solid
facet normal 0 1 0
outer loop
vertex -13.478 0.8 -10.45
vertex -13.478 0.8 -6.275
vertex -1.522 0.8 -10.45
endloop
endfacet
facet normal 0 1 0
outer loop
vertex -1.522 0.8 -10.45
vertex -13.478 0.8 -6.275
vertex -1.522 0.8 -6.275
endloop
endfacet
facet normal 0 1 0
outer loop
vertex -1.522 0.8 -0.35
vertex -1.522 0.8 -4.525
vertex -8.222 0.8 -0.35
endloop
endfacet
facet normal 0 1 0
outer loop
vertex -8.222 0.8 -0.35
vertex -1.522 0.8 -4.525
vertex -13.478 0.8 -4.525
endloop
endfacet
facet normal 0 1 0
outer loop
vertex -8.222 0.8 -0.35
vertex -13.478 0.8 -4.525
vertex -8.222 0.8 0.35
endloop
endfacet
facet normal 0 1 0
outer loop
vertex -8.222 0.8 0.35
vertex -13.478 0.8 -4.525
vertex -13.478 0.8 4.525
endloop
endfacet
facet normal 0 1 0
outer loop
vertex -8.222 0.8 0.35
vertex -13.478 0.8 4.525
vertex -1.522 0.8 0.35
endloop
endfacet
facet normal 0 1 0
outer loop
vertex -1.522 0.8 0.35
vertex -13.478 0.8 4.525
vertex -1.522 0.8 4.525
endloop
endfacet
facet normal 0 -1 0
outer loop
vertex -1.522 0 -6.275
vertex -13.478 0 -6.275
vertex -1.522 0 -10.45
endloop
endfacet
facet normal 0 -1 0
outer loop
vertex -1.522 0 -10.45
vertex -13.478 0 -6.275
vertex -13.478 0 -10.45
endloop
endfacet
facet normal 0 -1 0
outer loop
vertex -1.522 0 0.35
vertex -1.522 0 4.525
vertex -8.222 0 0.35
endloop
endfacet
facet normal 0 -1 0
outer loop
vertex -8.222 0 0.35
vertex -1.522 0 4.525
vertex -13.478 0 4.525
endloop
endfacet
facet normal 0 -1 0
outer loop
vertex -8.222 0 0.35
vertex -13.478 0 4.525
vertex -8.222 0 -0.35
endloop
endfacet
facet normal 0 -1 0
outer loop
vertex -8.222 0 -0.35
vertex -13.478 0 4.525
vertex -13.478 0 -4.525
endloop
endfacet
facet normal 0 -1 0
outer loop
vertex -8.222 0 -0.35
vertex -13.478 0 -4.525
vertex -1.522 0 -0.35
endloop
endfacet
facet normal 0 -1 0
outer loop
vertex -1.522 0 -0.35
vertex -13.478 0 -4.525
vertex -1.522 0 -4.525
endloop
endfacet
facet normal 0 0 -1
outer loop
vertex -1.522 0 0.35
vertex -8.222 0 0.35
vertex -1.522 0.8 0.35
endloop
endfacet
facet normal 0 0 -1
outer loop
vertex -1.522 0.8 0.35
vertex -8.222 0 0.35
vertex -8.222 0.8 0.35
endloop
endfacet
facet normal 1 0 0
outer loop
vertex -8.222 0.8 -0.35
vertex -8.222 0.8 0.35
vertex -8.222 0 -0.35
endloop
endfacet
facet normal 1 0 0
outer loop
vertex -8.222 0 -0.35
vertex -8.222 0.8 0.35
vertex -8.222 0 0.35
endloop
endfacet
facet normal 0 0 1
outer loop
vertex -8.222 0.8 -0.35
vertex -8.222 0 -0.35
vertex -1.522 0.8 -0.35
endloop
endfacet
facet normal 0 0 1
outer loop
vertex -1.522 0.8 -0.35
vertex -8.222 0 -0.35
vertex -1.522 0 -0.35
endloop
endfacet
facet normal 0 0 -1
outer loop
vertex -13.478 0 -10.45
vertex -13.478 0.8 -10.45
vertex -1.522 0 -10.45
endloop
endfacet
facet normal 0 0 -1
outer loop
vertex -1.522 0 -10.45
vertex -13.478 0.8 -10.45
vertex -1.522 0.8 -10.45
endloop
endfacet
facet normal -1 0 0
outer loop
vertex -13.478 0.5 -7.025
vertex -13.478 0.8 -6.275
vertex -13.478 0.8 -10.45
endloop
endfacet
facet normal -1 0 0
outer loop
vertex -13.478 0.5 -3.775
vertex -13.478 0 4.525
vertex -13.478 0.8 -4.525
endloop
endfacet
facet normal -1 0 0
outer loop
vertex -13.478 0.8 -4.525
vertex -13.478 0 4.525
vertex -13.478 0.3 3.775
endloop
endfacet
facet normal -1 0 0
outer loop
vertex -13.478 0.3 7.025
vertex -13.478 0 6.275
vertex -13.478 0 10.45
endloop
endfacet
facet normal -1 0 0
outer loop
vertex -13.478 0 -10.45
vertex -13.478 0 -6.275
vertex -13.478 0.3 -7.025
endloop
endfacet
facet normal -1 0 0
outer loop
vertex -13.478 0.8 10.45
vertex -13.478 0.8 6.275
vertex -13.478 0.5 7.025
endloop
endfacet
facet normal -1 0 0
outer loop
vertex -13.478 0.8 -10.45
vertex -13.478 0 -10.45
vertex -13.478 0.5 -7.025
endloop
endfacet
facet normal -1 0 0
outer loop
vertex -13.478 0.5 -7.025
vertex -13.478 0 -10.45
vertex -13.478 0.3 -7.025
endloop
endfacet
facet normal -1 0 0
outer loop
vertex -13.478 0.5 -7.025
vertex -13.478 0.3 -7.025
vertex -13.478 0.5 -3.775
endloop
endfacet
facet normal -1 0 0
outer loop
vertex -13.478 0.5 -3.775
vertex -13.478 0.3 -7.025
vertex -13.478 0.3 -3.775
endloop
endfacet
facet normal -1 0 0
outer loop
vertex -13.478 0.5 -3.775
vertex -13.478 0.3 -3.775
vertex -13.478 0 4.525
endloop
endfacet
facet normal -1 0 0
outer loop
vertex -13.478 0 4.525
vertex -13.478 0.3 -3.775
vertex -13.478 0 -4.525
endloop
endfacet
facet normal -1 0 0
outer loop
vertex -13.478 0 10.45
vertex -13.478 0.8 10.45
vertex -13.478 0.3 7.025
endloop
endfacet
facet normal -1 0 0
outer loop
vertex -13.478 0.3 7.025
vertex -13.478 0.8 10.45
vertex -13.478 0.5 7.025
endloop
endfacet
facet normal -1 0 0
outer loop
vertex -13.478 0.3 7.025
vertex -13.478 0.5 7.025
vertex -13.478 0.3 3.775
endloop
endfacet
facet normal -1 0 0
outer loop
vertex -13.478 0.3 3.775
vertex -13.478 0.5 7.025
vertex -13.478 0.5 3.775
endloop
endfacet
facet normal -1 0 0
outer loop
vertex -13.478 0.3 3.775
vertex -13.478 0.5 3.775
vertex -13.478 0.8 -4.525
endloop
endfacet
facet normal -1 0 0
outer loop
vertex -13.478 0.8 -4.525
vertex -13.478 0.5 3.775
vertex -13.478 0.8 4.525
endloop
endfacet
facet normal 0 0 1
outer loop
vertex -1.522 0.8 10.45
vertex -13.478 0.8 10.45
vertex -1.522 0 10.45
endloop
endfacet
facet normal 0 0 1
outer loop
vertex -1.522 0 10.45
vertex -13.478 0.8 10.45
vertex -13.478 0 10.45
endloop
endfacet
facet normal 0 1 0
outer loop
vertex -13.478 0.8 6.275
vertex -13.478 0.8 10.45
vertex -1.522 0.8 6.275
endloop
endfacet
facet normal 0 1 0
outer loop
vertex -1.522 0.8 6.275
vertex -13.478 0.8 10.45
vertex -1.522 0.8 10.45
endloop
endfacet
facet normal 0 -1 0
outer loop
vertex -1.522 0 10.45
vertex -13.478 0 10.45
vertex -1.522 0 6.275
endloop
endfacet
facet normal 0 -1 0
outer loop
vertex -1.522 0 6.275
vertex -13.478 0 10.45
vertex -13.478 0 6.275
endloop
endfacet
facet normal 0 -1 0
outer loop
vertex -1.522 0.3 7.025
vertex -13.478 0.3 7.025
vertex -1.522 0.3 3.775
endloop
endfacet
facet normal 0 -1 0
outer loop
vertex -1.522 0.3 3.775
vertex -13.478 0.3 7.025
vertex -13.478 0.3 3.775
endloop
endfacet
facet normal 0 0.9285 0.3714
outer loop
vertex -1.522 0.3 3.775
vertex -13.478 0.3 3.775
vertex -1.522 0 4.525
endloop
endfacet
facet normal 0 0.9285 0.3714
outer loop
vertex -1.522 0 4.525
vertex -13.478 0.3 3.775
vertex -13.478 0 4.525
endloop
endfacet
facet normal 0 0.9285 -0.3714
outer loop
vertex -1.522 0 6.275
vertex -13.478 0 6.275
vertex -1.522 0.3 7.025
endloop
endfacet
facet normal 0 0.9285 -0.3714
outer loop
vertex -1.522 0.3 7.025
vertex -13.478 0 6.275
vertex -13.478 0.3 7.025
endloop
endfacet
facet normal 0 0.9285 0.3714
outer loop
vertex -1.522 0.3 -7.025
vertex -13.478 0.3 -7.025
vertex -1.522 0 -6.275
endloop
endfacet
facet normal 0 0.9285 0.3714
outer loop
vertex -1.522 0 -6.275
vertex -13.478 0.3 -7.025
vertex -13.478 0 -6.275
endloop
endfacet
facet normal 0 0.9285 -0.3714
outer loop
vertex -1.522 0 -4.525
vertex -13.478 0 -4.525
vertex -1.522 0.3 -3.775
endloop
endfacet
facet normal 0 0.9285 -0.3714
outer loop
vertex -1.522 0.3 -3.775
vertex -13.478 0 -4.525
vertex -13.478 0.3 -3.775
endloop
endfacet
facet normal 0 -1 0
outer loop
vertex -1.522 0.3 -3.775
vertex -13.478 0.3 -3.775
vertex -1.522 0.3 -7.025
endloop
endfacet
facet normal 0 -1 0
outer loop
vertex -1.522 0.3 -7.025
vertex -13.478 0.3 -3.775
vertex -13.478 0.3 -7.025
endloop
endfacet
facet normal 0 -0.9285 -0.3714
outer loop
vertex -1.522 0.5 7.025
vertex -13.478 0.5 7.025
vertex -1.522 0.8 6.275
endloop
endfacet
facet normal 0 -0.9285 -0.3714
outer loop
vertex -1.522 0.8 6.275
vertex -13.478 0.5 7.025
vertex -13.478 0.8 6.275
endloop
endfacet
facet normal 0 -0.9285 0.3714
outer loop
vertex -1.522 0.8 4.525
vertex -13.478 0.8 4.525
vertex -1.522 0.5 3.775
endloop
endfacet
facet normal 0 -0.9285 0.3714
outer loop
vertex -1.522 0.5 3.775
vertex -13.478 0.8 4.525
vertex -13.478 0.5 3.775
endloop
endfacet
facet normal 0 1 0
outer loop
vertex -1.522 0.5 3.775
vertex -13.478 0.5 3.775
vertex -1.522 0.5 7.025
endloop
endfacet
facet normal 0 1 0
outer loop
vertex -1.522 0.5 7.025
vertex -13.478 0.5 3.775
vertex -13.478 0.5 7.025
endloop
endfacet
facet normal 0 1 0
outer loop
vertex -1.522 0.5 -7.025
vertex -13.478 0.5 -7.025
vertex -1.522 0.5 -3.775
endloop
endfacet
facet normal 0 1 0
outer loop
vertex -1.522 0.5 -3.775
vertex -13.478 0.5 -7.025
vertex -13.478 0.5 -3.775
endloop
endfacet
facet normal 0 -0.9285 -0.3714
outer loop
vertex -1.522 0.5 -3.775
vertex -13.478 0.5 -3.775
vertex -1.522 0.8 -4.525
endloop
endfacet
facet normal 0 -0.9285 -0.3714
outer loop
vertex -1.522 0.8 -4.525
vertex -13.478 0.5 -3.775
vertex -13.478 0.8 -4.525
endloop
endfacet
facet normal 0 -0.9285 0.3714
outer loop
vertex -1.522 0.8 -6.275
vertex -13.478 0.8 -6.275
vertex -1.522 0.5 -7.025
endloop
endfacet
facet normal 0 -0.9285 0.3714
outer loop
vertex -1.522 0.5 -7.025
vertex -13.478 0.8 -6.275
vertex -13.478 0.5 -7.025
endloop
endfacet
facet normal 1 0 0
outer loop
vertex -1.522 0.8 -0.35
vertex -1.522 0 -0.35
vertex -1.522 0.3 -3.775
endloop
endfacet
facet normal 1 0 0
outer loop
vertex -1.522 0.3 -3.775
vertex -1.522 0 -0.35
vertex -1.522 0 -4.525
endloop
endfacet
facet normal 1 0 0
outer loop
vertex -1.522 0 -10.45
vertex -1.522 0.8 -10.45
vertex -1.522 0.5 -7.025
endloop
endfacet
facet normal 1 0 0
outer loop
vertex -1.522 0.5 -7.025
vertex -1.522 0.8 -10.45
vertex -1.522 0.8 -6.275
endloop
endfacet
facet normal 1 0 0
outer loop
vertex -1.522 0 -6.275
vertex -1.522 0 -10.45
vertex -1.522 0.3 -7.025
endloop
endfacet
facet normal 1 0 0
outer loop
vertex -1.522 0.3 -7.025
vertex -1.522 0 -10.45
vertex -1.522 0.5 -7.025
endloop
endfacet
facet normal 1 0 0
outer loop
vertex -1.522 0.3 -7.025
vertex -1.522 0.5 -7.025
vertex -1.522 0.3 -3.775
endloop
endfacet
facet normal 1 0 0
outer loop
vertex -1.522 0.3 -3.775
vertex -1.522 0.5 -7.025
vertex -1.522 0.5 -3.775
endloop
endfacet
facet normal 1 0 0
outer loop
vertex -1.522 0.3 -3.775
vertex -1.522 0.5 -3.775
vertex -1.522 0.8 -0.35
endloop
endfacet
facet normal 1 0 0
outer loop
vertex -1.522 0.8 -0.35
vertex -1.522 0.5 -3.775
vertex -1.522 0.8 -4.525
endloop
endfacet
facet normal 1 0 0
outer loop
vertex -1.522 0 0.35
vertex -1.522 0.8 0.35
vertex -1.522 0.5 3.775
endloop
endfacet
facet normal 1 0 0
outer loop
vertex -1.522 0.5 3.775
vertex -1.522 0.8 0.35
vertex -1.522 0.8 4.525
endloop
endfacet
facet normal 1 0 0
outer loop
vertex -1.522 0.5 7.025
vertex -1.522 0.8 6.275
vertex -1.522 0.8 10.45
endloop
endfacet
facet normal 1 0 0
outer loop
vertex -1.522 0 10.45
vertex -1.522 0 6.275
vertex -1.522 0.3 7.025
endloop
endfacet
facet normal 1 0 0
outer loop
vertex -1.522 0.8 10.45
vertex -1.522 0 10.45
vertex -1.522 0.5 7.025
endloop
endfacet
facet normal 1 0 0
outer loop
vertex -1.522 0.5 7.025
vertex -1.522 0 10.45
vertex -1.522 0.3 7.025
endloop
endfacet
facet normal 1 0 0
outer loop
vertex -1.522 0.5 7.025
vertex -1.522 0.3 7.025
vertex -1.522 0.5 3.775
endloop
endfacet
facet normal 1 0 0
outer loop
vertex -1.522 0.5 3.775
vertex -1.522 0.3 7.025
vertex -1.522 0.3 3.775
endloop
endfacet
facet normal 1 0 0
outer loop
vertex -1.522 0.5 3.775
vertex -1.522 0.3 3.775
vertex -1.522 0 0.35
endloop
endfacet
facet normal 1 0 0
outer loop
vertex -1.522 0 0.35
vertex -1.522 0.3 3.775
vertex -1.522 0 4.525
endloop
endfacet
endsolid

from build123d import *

# Parameters (mm, degrees)
BOSS_EXTRUDE1_DEPTH = 0.8
CUT_EXTRUDE1_START  = -5.3
CUT_EXTRUDE1_DEPTH  = 21.7
SKETCH3_W           = 15
SKETCH3_H           = 20.9
CUT_EXTRUDE2_DEPTH  = 1.8


with BuildPart() as part:
    # Sketch1 → Boss-Extrude1 (new body)
    with BuildSketch(Plane(origin=(0, 0, 0), x_dir=(1, 0, 0), z_dir=(0, 1, 0))):
        Polygon((13.478240741, 10.45), (-13.478240741, 10.45), (-13.478240741, -10.45), (13.478240741, -10.45), (13.478240741, -0.35), (-8.221759259, -0.35), (-8.221759259, 0.35), (13.478240741, 0.35), align=None)
    extrude(amount=BOSS_EXTRUDE1_DEPTH)

    # Sketch2 → Cut-Extrude1 (cut)
    with BuildSketch(Plane(origin=(13.478240741, 0, 0), x_dir=(0, 0, -1), z_dir=(1, 0, 0)).offset(CUT_EXTRUDE1_START)):
        Polygon((-7.025, 0.5), (-3.775, 0.5), (-4.525, 0.8), (-6.275, 0.8), align=None)
        Polygon((-7.025, 0.3), (-6.275, 0), (-4.525, 0), (-3.775, 0.3), align=None)
        Polygon((7.025, 0.3), (3.775, 0.3), (4.525, 0), (6.275, 0), align=None)
        Polygon((7.025, 0.5), (6.275, 0.8), (4.525, 0.8), (3.775, 0.5), align=None)
    extrude(amount=-CUT_EXTRUDE1_DEPTH, mode=Mode.SUBTRACT)

    # Sketch3 → Cut-Extrude2 (cut, through all)
    with BuildSketch(Plane(origin=(0, 0.8, 0), x_dir=(1, 0, 0), z_dir=(0, 1, 0))):
        with Locations((5.978240741, 0)):
            Rectangle(SKETCH3_W, SKETCH3_H)
    extrude(amount=-CUT_EXTRUDE2_DEPTH, mode=Mode.SUBTRACT)


solid = part.part
